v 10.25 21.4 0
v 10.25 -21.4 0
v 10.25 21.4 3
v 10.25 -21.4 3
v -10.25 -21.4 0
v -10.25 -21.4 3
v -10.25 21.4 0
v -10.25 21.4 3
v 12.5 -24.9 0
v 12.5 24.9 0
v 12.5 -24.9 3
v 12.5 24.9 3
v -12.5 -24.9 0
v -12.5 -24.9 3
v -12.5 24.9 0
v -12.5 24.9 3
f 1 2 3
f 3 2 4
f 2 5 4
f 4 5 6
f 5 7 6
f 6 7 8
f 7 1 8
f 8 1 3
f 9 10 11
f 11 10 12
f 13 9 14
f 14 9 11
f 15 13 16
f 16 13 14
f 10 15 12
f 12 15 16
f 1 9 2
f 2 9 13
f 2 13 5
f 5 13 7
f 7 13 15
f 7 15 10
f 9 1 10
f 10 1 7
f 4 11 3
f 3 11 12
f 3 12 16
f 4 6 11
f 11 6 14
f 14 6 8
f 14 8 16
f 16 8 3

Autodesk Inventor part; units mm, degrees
ref_plane "YZ Plane" through (0, 0, 0) normal (1, 0, 0) x (0, 1, 0)
ref_plane "XZ Plane" through (0, 0, 0) normal (0, 1, 0) x (-1, 0, 0)
ref_plane "XY Plane" through (0, 0, 0) normal (0, 0, 1) x (1, 0, 0)
sketch "Sketch1" plane through (0, 0, 0) normal (0, 0, 1) x (1, 0, 0)
  line L0 (-17.5, 0) -> (17.5, 0) construction
  line L1 (0, -34.86) -> (0, 34.86) construction
  line L2 (-12.5, 24.9) -> (12.5, 24.9)
  line L3 (12.5, 24.9) -> (12.5, -24.9)
  line L4 (12.5, -24.9) -> (-12.5, -24.9)
  line L5 (-12.5, -24.9) -> (-12.5, 24.9)
  line L6 (-10.25, 21.4) -> (10.25, 21.4)
  line L7 (10.25, 21.4) -> (10.25, -21.4)
  line L8 (10.25, -21.4) -> (-10.25, -21.4)
  line L9 (-10.25, -21.4) -> (-10.25, 21.4)
  point P0 (0, 0)
  dimension "d0" = 20.5
  dimension "d1" = 25
  dimension "d2" = 49.8
  dimension "d3" = 42.8
extrude "Extrusion1" add sketch "Sketch1" along normal blind 3
properties part number "20_Cube_Insert_Sample_clamp"
